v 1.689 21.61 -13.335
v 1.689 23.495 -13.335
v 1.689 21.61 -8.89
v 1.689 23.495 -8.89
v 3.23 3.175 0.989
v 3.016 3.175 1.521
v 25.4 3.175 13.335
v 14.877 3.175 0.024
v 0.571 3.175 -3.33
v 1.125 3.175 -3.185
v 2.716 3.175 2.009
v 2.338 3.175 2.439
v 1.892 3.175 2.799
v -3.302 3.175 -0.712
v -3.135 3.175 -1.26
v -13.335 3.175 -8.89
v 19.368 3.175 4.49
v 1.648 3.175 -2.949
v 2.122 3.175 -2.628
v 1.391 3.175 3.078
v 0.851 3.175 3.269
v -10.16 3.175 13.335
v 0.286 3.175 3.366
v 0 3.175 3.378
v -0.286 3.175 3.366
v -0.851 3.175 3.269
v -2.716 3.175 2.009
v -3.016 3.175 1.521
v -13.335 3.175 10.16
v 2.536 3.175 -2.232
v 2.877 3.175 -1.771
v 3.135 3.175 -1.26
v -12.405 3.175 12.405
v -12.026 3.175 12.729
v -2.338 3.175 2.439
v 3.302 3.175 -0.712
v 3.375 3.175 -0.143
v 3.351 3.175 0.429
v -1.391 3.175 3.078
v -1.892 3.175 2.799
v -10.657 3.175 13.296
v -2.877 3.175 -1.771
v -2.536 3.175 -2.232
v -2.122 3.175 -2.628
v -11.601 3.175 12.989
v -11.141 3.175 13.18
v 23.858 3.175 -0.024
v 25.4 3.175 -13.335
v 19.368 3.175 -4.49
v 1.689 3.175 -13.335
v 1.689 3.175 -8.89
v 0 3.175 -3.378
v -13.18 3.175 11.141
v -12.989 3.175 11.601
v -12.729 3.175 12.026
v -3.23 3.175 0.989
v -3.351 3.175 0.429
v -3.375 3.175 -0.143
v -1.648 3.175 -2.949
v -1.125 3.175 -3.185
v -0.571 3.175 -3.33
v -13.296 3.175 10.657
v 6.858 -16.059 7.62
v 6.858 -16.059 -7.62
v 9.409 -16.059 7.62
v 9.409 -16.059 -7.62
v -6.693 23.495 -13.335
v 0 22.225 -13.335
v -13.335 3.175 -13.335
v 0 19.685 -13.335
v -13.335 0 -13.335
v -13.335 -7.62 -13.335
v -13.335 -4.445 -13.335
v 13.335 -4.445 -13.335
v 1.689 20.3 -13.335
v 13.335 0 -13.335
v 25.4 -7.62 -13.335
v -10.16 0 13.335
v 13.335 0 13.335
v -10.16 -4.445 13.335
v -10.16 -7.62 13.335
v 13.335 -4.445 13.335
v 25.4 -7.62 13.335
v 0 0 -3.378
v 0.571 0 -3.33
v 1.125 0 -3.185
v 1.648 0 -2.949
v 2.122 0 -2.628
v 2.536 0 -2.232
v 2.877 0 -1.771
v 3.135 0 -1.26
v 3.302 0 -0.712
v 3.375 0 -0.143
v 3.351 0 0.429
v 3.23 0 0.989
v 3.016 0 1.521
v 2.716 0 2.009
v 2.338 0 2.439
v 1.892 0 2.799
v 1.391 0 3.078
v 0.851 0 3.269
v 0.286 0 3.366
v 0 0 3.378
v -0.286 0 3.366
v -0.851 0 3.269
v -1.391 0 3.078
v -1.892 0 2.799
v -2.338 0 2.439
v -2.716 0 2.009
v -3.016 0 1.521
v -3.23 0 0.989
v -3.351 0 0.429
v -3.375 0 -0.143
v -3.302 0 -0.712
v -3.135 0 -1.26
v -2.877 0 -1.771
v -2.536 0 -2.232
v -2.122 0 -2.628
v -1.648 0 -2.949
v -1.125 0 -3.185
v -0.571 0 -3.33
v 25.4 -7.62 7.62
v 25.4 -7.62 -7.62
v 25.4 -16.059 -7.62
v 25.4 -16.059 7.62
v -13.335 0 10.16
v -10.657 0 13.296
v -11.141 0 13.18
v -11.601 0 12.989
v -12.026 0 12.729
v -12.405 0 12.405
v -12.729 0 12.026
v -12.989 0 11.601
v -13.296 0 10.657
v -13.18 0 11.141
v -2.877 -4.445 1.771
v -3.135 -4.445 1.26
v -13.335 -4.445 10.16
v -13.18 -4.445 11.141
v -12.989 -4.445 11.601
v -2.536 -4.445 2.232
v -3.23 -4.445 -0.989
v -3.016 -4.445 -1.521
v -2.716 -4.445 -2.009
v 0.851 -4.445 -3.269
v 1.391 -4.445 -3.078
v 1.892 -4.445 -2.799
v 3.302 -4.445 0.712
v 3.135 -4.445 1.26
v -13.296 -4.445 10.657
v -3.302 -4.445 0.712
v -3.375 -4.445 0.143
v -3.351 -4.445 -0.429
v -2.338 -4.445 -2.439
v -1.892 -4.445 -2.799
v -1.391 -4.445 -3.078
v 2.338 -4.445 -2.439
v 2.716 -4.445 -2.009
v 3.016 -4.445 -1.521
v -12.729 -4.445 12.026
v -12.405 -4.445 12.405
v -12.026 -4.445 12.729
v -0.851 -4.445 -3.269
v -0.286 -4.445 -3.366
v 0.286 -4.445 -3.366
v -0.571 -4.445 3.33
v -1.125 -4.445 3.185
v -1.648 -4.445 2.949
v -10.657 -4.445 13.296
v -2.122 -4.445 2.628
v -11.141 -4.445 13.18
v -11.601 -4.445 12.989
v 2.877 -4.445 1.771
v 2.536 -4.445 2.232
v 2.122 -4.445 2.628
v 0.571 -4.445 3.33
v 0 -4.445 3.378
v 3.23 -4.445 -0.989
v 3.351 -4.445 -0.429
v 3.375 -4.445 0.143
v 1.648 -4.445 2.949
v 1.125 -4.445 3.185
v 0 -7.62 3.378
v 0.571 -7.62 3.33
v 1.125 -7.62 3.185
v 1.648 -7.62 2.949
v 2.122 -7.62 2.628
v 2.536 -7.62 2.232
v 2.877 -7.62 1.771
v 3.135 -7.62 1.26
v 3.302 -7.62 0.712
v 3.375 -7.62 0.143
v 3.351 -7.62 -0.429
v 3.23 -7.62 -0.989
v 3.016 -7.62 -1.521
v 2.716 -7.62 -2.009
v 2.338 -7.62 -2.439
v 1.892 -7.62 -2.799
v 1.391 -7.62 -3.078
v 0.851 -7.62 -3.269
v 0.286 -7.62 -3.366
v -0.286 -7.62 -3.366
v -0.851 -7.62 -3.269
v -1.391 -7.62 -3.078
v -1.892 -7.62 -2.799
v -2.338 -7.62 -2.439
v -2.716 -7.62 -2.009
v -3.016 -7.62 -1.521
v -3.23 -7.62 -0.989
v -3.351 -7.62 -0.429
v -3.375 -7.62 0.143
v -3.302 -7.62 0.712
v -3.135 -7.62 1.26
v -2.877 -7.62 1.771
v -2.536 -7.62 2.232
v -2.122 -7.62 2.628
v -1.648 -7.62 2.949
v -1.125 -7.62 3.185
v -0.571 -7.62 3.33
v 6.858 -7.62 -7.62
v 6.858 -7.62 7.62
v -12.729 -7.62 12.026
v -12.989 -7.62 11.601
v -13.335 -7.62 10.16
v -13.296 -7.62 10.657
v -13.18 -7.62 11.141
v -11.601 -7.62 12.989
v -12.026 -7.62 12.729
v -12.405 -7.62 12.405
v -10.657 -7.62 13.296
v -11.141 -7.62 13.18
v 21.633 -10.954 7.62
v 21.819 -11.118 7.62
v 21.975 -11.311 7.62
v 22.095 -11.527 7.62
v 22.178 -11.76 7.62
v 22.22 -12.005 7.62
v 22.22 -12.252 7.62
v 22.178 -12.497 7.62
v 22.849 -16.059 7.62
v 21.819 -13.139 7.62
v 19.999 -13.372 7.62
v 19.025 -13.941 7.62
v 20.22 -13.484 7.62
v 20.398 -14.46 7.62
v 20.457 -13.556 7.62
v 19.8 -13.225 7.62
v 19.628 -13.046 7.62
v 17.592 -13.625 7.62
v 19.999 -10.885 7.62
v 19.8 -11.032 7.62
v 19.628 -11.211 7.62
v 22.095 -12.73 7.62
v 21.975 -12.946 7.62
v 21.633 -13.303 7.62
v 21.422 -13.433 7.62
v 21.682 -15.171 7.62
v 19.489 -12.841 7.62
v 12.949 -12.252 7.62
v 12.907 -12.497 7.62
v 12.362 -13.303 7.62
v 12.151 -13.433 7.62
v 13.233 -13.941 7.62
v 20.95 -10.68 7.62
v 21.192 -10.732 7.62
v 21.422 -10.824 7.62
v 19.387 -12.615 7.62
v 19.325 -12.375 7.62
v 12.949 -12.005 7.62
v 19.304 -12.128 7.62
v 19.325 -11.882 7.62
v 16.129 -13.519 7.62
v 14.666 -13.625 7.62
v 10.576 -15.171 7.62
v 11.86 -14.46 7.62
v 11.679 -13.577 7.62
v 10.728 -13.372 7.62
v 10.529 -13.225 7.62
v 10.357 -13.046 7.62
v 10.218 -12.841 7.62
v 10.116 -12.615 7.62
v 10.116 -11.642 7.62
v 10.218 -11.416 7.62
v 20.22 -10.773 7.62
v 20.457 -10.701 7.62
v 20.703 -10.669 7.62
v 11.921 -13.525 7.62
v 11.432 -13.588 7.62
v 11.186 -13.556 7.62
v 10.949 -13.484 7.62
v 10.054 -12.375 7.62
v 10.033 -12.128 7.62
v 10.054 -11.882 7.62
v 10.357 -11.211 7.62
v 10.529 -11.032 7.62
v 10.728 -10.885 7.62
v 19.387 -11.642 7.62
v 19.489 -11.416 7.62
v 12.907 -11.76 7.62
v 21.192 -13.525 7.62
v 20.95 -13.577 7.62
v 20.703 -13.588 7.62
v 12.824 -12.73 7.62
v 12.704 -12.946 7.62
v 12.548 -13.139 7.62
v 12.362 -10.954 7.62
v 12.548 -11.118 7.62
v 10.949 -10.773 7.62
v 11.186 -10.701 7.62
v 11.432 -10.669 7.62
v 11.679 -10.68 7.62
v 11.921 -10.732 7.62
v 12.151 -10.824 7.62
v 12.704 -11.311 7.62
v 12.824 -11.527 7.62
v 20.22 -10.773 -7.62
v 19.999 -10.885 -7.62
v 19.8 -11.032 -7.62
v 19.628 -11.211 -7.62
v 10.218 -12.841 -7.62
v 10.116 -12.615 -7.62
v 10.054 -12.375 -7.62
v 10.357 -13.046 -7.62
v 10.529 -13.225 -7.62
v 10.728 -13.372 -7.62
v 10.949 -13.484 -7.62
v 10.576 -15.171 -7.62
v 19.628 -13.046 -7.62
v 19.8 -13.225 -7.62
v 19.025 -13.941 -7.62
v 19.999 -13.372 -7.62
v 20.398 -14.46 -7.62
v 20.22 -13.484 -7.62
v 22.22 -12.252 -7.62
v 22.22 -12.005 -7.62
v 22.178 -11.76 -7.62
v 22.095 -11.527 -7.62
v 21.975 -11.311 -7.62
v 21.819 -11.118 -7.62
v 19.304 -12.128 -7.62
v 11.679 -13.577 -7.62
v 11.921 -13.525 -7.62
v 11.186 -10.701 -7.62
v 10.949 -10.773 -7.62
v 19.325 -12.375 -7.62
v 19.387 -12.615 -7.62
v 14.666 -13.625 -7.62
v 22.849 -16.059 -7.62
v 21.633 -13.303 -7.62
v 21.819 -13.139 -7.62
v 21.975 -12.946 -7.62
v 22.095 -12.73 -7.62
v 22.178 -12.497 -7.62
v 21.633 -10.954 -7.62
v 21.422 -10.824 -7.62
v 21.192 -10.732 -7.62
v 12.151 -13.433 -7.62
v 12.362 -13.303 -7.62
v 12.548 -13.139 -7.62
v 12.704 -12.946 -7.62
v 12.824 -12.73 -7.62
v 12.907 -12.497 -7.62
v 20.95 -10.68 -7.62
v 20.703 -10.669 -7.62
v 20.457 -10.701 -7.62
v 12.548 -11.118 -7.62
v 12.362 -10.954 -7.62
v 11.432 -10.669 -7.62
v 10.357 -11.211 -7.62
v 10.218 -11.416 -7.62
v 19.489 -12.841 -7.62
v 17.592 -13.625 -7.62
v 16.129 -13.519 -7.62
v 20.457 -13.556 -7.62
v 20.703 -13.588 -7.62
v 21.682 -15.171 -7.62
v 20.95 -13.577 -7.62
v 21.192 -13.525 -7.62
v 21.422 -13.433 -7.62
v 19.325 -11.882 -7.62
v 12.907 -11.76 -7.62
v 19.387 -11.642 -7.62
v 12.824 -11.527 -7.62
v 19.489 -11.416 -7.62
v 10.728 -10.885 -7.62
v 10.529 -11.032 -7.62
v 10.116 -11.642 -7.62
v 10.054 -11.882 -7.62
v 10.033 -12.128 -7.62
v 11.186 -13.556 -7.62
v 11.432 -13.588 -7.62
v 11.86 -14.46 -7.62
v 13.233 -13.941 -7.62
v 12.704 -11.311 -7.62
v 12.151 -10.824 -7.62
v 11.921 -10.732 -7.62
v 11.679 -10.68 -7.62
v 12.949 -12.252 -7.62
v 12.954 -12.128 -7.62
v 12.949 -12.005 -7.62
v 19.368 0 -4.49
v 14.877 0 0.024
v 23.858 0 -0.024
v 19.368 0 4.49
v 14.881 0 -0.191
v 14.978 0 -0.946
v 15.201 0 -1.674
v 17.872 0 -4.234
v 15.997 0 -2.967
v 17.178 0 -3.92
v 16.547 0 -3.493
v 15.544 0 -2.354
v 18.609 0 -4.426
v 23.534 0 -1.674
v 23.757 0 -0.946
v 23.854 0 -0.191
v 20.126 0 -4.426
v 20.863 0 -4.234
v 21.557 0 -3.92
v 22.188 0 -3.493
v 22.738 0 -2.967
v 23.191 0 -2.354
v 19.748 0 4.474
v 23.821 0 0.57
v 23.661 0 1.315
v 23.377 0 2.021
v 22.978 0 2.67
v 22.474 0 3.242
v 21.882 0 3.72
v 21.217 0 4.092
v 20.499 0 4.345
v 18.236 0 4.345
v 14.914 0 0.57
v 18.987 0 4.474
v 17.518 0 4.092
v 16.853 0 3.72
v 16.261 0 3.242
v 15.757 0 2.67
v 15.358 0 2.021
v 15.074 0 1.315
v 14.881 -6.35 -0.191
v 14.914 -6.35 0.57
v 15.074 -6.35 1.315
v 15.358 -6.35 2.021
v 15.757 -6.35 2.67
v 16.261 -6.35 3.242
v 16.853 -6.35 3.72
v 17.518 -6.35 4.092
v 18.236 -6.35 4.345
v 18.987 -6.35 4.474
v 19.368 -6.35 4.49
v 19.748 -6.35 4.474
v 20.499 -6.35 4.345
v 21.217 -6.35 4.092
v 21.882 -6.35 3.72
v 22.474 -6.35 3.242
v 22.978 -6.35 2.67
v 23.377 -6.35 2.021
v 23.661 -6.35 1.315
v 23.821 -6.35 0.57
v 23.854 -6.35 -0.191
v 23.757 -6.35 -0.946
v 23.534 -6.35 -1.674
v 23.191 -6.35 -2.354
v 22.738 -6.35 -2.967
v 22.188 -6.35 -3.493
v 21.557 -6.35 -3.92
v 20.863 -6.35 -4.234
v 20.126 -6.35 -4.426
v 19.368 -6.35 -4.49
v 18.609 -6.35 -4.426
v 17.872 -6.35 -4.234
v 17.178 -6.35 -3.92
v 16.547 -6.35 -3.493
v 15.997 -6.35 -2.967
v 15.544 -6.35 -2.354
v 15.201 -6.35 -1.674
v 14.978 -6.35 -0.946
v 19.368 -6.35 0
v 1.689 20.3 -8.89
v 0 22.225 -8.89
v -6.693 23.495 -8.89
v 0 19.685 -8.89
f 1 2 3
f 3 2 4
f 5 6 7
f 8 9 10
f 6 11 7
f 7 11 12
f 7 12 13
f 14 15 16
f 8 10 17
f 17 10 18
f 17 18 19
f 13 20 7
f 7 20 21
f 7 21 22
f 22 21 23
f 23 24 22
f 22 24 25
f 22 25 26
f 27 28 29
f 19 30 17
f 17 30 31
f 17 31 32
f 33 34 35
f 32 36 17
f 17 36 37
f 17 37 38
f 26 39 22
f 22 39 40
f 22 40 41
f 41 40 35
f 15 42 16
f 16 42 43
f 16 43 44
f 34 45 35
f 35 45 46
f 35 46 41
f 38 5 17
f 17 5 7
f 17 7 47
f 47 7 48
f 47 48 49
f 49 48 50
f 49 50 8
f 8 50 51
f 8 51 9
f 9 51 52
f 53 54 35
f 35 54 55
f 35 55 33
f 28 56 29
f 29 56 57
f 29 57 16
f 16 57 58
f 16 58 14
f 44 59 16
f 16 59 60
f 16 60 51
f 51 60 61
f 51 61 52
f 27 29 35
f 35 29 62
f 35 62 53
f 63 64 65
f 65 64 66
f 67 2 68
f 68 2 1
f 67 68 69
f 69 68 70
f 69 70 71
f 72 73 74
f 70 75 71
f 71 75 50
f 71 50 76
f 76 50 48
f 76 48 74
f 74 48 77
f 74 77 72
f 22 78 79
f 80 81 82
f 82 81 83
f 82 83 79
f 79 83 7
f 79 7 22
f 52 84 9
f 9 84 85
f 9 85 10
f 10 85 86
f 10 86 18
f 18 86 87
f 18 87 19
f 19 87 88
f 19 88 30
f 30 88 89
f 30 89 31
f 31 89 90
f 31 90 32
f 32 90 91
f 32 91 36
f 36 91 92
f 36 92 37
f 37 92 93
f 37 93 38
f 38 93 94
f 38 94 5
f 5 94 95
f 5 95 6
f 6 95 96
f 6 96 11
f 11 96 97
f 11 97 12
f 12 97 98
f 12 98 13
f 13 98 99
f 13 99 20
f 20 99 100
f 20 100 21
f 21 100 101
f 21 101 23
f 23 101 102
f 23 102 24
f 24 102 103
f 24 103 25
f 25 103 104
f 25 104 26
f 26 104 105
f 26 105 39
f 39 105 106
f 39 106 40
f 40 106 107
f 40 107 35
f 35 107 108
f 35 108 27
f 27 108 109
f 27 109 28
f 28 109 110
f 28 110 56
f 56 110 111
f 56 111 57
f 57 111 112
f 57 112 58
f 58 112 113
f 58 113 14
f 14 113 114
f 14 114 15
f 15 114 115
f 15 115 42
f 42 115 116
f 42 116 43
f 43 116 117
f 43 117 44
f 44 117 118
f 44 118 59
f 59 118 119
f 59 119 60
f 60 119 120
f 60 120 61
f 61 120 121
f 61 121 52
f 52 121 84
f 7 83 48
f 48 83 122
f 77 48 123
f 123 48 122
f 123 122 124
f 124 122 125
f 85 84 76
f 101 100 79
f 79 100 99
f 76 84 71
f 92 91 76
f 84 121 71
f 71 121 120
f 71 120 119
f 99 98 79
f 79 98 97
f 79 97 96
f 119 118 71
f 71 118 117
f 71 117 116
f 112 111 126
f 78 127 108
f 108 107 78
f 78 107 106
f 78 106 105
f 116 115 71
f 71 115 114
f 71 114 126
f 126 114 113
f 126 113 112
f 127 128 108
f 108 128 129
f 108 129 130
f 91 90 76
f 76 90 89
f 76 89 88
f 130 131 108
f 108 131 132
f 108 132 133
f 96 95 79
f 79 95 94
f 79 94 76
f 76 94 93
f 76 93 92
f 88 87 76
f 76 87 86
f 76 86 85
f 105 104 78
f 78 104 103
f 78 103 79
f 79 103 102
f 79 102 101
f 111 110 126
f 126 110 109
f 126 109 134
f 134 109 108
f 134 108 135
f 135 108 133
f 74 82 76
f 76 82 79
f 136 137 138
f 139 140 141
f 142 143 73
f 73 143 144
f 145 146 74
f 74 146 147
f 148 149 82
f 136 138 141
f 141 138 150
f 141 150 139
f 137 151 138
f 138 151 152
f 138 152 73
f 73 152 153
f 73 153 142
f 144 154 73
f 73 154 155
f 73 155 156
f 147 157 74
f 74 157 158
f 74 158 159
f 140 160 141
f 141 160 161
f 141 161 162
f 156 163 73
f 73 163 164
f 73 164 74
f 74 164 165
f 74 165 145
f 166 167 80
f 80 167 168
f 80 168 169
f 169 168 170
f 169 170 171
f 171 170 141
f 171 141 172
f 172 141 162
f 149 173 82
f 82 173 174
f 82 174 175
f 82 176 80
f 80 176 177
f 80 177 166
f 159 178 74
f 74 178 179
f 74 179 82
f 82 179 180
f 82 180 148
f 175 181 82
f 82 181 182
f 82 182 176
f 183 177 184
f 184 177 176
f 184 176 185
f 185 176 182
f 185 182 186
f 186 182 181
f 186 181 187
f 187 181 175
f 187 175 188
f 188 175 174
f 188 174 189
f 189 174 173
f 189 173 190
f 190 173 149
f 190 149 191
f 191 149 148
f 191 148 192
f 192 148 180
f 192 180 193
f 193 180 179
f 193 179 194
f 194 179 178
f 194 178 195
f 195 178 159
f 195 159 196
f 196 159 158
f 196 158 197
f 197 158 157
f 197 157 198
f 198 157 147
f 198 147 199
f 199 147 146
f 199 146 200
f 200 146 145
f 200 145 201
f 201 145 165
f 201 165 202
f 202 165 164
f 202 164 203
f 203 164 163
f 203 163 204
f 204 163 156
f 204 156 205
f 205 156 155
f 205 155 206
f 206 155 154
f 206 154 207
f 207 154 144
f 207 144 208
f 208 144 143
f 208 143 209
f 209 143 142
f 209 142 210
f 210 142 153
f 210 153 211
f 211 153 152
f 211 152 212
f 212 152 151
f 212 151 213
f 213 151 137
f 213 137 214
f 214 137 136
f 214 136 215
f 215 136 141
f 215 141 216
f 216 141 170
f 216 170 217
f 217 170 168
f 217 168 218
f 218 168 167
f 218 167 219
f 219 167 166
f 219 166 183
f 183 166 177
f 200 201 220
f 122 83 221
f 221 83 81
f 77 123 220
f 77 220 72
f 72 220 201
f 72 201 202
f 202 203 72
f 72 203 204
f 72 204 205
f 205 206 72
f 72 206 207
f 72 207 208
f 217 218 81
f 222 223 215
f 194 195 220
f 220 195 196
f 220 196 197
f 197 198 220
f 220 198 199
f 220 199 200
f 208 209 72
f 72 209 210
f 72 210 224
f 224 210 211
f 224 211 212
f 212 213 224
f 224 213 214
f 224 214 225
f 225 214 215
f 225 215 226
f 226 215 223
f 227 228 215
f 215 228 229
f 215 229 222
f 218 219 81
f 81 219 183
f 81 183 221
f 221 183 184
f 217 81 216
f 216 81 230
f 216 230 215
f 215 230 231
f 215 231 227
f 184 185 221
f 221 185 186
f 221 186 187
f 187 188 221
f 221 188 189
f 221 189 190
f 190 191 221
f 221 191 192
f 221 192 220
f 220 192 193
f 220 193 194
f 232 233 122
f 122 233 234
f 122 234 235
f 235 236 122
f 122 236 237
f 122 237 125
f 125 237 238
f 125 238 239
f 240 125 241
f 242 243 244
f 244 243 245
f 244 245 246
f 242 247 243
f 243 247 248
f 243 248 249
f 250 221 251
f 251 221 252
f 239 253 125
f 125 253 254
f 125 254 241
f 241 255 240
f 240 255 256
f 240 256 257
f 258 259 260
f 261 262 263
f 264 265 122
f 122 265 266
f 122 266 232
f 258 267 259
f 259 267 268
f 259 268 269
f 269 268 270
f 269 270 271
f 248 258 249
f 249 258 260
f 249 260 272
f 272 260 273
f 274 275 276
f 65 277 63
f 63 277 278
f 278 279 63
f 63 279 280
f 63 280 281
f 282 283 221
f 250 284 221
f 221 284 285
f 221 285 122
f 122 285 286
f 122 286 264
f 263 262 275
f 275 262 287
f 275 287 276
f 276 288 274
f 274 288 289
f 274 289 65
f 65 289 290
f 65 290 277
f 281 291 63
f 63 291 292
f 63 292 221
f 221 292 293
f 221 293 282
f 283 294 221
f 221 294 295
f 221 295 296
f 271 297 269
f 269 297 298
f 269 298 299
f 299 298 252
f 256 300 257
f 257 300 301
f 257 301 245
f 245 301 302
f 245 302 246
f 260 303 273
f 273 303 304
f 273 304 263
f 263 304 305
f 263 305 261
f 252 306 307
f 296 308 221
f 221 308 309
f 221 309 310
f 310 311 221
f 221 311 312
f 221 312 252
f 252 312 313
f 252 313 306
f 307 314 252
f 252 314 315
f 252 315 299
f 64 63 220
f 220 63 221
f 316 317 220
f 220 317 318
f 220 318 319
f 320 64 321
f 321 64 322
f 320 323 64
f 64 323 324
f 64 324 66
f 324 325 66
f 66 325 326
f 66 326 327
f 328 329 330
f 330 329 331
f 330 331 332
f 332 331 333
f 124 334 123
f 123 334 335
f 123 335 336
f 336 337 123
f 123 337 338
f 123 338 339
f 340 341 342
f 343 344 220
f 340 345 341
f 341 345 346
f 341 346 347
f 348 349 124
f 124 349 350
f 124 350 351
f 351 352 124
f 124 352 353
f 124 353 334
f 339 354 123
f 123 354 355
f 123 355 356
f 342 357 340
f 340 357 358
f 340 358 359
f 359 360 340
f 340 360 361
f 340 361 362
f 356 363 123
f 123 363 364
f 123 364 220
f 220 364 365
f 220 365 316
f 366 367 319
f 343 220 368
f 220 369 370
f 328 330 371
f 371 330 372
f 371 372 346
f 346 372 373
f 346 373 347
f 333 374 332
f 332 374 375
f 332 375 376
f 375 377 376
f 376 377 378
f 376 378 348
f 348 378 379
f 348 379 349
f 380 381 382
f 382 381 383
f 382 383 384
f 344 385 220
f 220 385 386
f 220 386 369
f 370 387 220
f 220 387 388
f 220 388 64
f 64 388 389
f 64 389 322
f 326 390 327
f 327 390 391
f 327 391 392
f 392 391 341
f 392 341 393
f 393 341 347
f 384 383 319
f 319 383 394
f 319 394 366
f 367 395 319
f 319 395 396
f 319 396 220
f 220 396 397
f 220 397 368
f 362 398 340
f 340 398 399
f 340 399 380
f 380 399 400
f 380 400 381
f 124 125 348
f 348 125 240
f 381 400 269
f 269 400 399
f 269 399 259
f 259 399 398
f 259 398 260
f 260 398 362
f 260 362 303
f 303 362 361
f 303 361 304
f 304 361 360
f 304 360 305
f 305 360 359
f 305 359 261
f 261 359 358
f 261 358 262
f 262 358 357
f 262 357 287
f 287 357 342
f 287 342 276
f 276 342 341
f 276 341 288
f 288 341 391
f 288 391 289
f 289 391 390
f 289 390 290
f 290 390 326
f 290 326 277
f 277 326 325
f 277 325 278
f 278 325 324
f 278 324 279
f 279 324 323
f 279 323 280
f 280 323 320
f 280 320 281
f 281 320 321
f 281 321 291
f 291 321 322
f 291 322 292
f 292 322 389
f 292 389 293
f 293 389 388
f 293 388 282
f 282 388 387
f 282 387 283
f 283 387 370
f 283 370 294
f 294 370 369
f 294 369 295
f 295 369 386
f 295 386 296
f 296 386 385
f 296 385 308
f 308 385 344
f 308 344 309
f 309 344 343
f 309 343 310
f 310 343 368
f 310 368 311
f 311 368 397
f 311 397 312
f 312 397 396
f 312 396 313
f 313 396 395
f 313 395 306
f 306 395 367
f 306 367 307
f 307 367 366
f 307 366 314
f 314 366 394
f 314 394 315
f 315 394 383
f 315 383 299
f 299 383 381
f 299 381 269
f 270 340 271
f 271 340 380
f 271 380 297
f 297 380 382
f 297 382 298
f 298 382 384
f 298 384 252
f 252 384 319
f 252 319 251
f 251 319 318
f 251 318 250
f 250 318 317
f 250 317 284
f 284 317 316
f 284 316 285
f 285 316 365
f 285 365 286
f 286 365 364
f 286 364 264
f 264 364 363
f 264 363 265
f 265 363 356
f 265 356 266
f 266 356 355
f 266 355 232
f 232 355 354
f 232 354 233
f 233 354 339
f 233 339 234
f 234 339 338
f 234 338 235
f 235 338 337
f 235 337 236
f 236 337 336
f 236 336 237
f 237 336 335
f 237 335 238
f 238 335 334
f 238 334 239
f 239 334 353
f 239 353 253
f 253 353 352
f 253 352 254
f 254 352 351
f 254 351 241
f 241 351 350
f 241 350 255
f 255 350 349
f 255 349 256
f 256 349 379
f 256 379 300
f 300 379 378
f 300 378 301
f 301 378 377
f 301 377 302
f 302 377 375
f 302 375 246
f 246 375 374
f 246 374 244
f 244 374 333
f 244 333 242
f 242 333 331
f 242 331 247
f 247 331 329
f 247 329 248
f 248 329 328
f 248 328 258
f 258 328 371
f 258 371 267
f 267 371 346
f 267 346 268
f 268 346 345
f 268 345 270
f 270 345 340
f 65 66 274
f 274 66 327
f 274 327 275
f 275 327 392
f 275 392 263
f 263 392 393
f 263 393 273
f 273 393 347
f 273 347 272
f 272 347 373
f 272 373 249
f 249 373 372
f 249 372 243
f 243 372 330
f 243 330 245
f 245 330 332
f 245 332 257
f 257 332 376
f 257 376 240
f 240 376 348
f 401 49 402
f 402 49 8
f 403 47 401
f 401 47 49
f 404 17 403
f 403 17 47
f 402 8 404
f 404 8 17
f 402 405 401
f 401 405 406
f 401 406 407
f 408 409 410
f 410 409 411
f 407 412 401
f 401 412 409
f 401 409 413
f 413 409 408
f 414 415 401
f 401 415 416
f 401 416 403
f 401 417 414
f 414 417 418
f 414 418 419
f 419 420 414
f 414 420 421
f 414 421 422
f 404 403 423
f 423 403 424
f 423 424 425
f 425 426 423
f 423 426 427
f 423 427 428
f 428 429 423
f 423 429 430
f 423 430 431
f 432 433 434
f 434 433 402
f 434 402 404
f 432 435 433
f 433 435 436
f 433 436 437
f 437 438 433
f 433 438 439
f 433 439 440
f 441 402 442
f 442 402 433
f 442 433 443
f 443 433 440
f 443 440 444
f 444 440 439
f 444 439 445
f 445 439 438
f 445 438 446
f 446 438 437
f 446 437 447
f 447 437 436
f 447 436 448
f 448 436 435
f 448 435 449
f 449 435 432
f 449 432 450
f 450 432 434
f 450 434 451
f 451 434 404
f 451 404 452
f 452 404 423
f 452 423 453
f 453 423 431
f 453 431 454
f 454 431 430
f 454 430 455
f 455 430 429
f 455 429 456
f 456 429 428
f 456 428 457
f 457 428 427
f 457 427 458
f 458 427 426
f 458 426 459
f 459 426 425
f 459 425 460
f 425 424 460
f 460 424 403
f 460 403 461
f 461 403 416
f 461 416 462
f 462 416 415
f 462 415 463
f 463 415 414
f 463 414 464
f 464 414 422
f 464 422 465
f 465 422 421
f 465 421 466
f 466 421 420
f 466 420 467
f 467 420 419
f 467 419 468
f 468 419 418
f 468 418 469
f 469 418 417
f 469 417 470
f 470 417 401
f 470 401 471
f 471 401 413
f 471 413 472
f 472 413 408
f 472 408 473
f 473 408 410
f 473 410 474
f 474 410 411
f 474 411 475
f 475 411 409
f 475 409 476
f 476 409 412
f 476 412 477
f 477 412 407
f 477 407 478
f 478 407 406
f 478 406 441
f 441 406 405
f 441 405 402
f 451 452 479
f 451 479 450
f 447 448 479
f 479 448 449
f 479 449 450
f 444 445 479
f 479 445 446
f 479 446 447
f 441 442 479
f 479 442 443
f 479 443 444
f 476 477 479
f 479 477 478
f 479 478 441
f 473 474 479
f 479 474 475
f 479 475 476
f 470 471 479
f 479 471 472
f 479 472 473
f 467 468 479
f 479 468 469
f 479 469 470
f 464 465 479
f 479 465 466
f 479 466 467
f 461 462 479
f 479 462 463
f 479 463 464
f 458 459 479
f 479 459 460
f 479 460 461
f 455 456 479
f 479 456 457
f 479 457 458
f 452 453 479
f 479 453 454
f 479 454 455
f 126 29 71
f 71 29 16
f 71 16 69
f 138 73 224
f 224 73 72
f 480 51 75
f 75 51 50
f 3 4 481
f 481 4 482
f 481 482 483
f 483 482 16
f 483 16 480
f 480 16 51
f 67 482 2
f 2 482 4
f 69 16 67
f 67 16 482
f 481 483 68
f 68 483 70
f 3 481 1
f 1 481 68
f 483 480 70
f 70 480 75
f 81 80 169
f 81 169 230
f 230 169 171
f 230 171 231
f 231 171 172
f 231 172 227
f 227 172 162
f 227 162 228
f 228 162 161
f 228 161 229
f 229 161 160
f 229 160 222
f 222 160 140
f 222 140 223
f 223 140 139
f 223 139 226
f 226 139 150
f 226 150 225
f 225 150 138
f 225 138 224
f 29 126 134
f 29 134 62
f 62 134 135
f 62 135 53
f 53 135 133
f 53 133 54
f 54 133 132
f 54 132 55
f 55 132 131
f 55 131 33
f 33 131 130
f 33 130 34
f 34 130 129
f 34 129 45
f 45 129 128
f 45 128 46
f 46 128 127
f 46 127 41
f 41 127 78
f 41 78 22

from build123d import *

# Parameters (mm, degrees)
SKETCH1_R            = 3.3782
BOSS_EXTRUDE1_DEPTH  = 3.175
BOSS_EXTRUDE2_DEPTH  = 4.445
SKETCH7_W            = 18.542
SKETCH7_H            = 15.24
BOSS_EXTRUDE4_DEPTH  = 8.43915
SKETCH8_R            = 1.4605
CUT_EXTRUDE3_DEPTH   = 21.955
SKETCH9_R            = 10.16
CUT_EXTRUDE4_DEPTH   = 21.955
CUT_EXTRUDE6_DEPTH   = 9.525
SKETCH23_R           = 4.490128061
CUT_EXTRUDE7_DEPTH   = 6.35
BOSS_EXTRUDE10_DEPTH = 3.175
BOSS_EXTRUDE11_DEPTH = 3.175
SKETCH19_W           = 8.382
SKETCH19_H           = 4.445
BOSS_EXTRUDE12_DEPTH = 20.32
BOSS_EXTRUDE13_DEPTH = 4.445
CUT_EXTRUDE5_DEPTH   = 12.7
FILLET2_R            = 3.175


with BuildPart() as part:
    # Sketch1 → Boss-Extrude1 (new body)
    with BuildSketch(Plane(origin=(0, 0, 0), x_dir=(1, 0, 0), z_dir=(0, 1, 0))):
        with BuildLine():
            Line((0, -13.335), (25.4, -13.335))
            Line((25.4, -13.335), (25.4, 13.335))
            Line((25.4, 13.335), (0, 13.335))
            ThreePointArc((0, 13.335), (-13.335, 0), (0, -13.335))
        make_face()
        Circle(SKETCH1_R, mode=Mode.SUBTRACT)
    boss_extrude1 = extrude(amount=BOSS_EXTRUDE1_DEPTH)

    # Sketch2 → Boss-Extrude2 (add)
    with BuildSketch(Plane(origin=(0, 0, 0), x_dir=(-1, 0, 0), z_dir=(0, -1, 0))):
        Polygon((-25.4, 13.335), (-25.4, -13.335), (-13.335, -13.335), (-13.335, 0), (-13.335, 13.335), align=None)
    extrude(amount=BOSS_EXTRUDE2_DEPTH)

    # Mirror2: Boss-Extrude1 across plane
    add(boss_extrude1.mirror(Plane(origin=(0, -2.2225, 0), x_dir=(0, 0, 1), z_dir=(0, -1, 0))))

    # Sketch7 → Boss-Extrude4 (add)
    with BuildSketch(Plane(origin=(0, -7.62, 0), x_dir=(-1, 0, 0), z_dir=(0, -1, 0))):
        with Locations((-16.129, 0)):
            Rectangle(SKETCH7_W, SKETCH7_H)
    extrude(amount=BOSS_EXTRUDE4_DEPTH)

    # Sketch8 → Cut-Extrude3 (cut, through all)
    with BuildSketch(Plane(origin=(0, 0, -7.62), x_dir=(-1, 0, 0), z_dir=(0, 0, -1))):
        with Locations((-20.7645, -12.1285)):
            Circle(SKETCH8_R)
        with Locations((-11.4935, -12.1285)):
            Circle(SKETCH8_R)
    extrude(amount=-CUT_EXTRUDE3_DEPTH, mode=Mode.SUBTRACT)

    # Sketch9 → Cut-Extrude4 (cut, through all)
    with BuildSketch(Plane(origin=(0, 0, -7.62), x_dir=(-1, 0, 0), z_dir=(0, 0, -1))):
        with Locations((-16.129, -23.67915)):
            Circle(SKETCH9_R)
    extrude(amount=-CUT_EXTRUDE4_DEPTH, mode=Mode.SUBTRACT)

    # Sketch22 → Cut-Extrude6 (cut)
    with BuildSketch(Plane(origin=(0, 3.175, 0), x_dir=(1, 0, 0), z_dir=(0, 1, 0))):
        Polygon((19.3675, -4.490128061), (23.857563833, 0.024016226), (19.3675, 4.490128061), (14.877436167, -0.024016226), align=None)
    extrude(amount=-CUT_EXTRUDE6_DEPTH, mode=Mode.SUBTRACT)

    # Sketch23 → Cut-Extrude7 (cut)
    with BuildSketch(Plane(origin=(0, -6.35, 0), x_dir=(1, 0, 0), z_dir=(0, 1, 0))):
        with Locations((19.3675, 0)):
            Circle(SKETCH23_R)
    extrude(amount=CUT_EXTRUDE7_DEPTH, mode=Mode.SUBTRACT)

    # Sketch16 → Boss-Extrude10 (add)
    with BuildSketch(Plane(origin=(0, 3.175, 0), x_dir=(1, 0, 0), z_dir=(0, 1, 0))):
        Polygon((0, 13.335), (-13.335, 13.335), (-13.335, 0), (-13.335, -13.335), (0, -13.335), (-6.6675, -6.6675), (-6.6675, 6.6675), align=None)
    extrude(amount=-BOSS_EXTRUDE10_DEPTH)

    # Sketch17 → Boss-Extrude11 (add)
    with BuildSketch(Plane.XZ.offset(7.62)):
        Polygon((-13.335, -13.335), (-13.335, 0), (-13.335, 13.335), (0, 13.335), (-6.6675, 6.6675), (-6.6675, -6.6675), (0, -13.335), align=None)
    extrude(amount=-BOSS_EXTRUDE11_DEPTH)

    # Sketch19 → Boss-Extrude12 (add)
    with BuildSketch(Plane(origin=(0, 3.175, 0), x_dir=(1, 0, 0), z_dir=(0, 1, 0))):
        with Locations((-2.5019, 11.1125)):
            Rectangle(SKETCH19_W, SKETCH19_H)
    extrude(amount=BOSS_EXTRUDE12_DEPTH)

    # Sketch20 → Boss-Extrude13 (add)
    with BuildSketch(Plane.XY.offset(-8.89)):
        Polygon((-6.6929, 23.495), (-13.335, 3.175), (-6.6929, 3.175), align=None)
    extrude(amount=-BOSS_EXTRUDE13_DEPTH)

    # Sketch21 → Cut-Extrude5 (cut)
    with BuildSketch(Plane.XY.offset(-8.89)):
        Polygon((0, 22.225), (1.6891, 21.610217877), (1.6891, 20.299782123), (0, 19.685), align=None)
    extrude(amount=-CUT_EXTRUDE5_DEPTH, mode=Mode.SUBTRACT)

    # Fillet2
    fillet2_edges = [part.edges().sort_by_distance(p)[0] for p in [
        (-13.335, 1.5875, 13.335),
        (-13.335, -6.0325, 13.335),
    ]]
    fillet(fillet2_edges, radius=FILLET2_R)


solid = part.part
